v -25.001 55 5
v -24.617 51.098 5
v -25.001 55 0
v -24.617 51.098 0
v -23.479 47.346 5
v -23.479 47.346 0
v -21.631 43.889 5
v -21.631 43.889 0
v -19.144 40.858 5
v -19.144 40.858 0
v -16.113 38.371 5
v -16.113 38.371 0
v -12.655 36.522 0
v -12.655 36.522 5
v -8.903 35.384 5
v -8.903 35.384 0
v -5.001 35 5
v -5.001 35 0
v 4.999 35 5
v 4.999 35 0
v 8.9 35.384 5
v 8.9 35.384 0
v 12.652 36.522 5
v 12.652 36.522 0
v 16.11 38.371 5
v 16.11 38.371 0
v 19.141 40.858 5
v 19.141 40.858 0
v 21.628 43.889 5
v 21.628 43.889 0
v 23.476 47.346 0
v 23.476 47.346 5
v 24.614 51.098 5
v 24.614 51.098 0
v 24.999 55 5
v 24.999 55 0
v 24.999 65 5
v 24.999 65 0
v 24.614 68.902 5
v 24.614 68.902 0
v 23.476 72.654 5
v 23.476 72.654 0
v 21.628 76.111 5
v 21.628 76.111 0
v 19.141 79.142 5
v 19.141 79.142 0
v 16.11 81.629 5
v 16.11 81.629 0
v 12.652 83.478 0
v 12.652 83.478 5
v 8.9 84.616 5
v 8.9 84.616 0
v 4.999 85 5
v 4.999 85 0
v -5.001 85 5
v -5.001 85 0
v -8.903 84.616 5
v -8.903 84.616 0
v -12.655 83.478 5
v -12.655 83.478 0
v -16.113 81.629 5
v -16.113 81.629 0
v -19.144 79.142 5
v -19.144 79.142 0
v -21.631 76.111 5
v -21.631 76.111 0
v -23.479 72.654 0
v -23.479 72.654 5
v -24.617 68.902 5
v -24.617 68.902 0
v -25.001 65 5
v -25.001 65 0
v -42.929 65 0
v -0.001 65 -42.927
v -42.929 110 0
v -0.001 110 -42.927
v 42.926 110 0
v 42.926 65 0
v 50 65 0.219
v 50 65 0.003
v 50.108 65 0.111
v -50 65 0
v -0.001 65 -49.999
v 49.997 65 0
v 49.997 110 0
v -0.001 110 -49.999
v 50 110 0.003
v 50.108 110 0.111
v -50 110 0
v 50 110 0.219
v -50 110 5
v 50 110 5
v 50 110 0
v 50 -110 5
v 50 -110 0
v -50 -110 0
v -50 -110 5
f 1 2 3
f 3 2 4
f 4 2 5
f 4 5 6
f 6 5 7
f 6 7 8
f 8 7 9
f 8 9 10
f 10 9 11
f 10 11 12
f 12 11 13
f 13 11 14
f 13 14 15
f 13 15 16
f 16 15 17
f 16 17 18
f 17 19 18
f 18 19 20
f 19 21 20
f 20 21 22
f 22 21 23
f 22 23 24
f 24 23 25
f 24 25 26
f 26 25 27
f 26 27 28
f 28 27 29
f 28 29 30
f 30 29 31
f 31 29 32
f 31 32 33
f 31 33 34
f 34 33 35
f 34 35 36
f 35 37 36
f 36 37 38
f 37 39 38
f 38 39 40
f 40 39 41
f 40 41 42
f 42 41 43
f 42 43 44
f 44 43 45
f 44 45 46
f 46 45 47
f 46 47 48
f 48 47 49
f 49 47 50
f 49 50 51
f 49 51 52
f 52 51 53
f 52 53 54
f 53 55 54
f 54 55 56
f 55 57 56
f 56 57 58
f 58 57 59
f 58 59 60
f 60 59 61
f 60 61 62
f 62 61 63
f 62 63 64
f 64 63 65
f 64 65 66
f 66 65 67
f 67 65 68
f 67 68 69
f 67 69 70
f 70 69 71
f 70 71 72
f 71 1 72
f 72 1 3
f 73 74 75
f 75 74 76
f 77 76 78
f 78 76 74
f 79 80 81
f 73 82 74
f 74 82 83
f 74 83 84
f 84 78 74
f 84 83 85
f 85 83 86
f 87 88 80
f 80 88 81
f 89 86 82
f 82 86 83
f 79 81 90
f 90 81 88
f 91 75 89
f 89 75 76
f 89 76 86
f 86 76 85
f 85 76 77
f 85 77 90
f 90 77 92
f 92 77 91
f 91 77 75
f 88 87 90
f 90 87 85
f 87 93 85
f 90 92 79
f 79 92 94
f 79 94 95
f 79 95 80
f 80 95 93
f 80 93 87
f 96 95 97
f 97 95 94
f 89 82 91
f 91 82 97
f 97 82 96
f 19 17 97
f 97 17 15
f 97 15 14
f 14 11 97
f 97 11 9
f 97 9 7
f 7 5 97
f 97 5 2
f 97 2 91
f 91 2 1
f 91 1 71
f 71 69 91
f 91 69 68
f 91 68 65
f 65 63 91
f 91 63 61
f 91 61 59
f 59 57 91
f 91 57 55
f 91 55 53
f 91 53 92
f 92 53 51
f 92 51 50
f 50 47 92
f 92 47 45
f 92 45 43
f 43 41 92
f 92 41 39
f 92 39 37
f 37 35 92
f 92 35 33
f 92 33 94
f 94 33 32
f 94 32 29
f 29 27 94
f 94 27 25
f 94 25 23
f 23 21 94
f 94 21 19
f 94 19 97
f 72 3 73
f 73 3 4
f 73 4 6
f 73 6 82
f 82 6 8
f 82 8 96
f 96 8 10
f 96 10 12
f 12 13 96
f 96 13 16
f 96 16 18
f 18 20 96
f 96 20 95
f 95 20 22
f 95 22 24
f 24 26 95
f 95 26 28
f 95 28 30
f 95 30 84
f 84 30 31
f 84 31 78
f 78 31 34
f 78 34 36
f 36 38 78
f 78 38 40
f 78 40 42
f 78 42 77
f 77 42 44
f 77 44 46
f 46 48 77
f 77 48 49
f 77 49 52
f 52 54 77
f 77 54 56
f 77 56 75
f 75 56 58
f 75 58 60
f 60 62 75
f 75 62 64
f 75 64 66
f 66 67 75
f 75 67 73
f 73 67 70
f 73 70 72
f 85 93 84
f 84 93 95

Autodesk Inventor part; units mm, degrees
ref_plane "YZ Plane" through (0, 0, 0) normal (1, 0, 0) x (0, 1, 0)
ref_plane "XZ Plane" through (0, 0, 0) normal (0, 1, 0) x (-1, 0, 0)
ref_plane "XY Plane" through (0, 0, 0) normal (0, 0, 1) x (1, 0, 0)
sketch "Sketch1" plane through (0, 0, 0) normal (0, 0, 1) x (1, 0, 0)
  line L0 (-50, -110) -> (50, -110)
  line L1 (50, -110) -> (50, 110)
  line L2 (50, 110) -> (-50, 110)
  line L3 (-50, 110) -> (-50, -110)
  line L4 (-50, -110) -> (50, 110) construction
  line L5 (50, -110) -> (-50, 110) construction
  point P0 (0, 0)
  dimension "d0" = 100
  dimension "d1" = 220
extrude "Extrusion1" add sketch "Sketch1" along normal blind 5
sketch "Sketch2" plane through (-50, 110, 0) normal (0, 1, 0) x (1, 0, 0)
  line L0 (0, 0) -> (100, 0) projected
  line L1 (0, 0) -> (49.9986, 49.9986)
  line L2 (49.9986, 49.9986) -> (53.5341, 46.463)
  line L3 (53.5341, 46.463) -> (3.5355, -3.5355)
  line L4 (3.5355, -3.5355) -> (0, 0)
  line L5 (0, 0) -> (70.7086, 0) construction
  line L6 (100.108, -0.1109) -> (53.5341, 46.463)
  line L7 (53.5341, 46.463) -> (49.9986, 42.9275)
  line L8 (49.9986, 42.9275) -> (96.5724, -3.6464)
  line L9 (96.5724, -3.6464) -> (100.108, -0.1109)
  point P0 (50, 0)
  point P1 (49.9986, 42.9275)
  dimension "d4" = 45
  dimension "d5" = 5
  dimension "d6" = 5
extrude "Extrusion2" add sketch "Sketch2" against normal blind 45 contours L1 L2 L3 L0 | L0 L3 L4 | L8 L3 L6 L0 | L0 L6 L9 L8
sketch "Sketch5" plane through (0, 0, 5) normal (0, 0, 1) x (1, 0, 0)
  line L0 (4.9986, 85) -> (-5.0014, 85)
  line L1 (-25.0014, 65) -> (-25.0014, 55)
  line L2 (-5.0014, 35) -> (4.9986, 35)
  line L3 (24.9986, 55) -> (24.9986, 65)
  line L4 (-0.0014, 110) -> (-0.0014, 65) projected
  line L5 (24.9986, 85) -> (-25.0014, 35) construction
  line L6 (-25.0014, 85) -> (24.9986, 35) construction
  arc A0 (4.9986, 35) -> (24.9986, 55) centre (4.9986, 55) ccw
  arc A1 (-25.0014, 55) -> (-5.0014, 35) centre (-5.0014, 55) ccw
  arc A2 (-5.0014, 85) -> (-25.0014, 65) centre (-5.0014, 65) ccw
  arc A3 (24.9986, 65) -> (4.9986, 85) centre (4.9986, 65) ccw
  point P0 (0, 0)
  point P1 (-0.0014, 60)
  dimension "d16" = 50
  dimension "d17" = 50
  dimension "d18" = 20
extrude "Extrusion5" cut sketch "Sketch5" against normal blind 5
properties part number "fixation_v04"
